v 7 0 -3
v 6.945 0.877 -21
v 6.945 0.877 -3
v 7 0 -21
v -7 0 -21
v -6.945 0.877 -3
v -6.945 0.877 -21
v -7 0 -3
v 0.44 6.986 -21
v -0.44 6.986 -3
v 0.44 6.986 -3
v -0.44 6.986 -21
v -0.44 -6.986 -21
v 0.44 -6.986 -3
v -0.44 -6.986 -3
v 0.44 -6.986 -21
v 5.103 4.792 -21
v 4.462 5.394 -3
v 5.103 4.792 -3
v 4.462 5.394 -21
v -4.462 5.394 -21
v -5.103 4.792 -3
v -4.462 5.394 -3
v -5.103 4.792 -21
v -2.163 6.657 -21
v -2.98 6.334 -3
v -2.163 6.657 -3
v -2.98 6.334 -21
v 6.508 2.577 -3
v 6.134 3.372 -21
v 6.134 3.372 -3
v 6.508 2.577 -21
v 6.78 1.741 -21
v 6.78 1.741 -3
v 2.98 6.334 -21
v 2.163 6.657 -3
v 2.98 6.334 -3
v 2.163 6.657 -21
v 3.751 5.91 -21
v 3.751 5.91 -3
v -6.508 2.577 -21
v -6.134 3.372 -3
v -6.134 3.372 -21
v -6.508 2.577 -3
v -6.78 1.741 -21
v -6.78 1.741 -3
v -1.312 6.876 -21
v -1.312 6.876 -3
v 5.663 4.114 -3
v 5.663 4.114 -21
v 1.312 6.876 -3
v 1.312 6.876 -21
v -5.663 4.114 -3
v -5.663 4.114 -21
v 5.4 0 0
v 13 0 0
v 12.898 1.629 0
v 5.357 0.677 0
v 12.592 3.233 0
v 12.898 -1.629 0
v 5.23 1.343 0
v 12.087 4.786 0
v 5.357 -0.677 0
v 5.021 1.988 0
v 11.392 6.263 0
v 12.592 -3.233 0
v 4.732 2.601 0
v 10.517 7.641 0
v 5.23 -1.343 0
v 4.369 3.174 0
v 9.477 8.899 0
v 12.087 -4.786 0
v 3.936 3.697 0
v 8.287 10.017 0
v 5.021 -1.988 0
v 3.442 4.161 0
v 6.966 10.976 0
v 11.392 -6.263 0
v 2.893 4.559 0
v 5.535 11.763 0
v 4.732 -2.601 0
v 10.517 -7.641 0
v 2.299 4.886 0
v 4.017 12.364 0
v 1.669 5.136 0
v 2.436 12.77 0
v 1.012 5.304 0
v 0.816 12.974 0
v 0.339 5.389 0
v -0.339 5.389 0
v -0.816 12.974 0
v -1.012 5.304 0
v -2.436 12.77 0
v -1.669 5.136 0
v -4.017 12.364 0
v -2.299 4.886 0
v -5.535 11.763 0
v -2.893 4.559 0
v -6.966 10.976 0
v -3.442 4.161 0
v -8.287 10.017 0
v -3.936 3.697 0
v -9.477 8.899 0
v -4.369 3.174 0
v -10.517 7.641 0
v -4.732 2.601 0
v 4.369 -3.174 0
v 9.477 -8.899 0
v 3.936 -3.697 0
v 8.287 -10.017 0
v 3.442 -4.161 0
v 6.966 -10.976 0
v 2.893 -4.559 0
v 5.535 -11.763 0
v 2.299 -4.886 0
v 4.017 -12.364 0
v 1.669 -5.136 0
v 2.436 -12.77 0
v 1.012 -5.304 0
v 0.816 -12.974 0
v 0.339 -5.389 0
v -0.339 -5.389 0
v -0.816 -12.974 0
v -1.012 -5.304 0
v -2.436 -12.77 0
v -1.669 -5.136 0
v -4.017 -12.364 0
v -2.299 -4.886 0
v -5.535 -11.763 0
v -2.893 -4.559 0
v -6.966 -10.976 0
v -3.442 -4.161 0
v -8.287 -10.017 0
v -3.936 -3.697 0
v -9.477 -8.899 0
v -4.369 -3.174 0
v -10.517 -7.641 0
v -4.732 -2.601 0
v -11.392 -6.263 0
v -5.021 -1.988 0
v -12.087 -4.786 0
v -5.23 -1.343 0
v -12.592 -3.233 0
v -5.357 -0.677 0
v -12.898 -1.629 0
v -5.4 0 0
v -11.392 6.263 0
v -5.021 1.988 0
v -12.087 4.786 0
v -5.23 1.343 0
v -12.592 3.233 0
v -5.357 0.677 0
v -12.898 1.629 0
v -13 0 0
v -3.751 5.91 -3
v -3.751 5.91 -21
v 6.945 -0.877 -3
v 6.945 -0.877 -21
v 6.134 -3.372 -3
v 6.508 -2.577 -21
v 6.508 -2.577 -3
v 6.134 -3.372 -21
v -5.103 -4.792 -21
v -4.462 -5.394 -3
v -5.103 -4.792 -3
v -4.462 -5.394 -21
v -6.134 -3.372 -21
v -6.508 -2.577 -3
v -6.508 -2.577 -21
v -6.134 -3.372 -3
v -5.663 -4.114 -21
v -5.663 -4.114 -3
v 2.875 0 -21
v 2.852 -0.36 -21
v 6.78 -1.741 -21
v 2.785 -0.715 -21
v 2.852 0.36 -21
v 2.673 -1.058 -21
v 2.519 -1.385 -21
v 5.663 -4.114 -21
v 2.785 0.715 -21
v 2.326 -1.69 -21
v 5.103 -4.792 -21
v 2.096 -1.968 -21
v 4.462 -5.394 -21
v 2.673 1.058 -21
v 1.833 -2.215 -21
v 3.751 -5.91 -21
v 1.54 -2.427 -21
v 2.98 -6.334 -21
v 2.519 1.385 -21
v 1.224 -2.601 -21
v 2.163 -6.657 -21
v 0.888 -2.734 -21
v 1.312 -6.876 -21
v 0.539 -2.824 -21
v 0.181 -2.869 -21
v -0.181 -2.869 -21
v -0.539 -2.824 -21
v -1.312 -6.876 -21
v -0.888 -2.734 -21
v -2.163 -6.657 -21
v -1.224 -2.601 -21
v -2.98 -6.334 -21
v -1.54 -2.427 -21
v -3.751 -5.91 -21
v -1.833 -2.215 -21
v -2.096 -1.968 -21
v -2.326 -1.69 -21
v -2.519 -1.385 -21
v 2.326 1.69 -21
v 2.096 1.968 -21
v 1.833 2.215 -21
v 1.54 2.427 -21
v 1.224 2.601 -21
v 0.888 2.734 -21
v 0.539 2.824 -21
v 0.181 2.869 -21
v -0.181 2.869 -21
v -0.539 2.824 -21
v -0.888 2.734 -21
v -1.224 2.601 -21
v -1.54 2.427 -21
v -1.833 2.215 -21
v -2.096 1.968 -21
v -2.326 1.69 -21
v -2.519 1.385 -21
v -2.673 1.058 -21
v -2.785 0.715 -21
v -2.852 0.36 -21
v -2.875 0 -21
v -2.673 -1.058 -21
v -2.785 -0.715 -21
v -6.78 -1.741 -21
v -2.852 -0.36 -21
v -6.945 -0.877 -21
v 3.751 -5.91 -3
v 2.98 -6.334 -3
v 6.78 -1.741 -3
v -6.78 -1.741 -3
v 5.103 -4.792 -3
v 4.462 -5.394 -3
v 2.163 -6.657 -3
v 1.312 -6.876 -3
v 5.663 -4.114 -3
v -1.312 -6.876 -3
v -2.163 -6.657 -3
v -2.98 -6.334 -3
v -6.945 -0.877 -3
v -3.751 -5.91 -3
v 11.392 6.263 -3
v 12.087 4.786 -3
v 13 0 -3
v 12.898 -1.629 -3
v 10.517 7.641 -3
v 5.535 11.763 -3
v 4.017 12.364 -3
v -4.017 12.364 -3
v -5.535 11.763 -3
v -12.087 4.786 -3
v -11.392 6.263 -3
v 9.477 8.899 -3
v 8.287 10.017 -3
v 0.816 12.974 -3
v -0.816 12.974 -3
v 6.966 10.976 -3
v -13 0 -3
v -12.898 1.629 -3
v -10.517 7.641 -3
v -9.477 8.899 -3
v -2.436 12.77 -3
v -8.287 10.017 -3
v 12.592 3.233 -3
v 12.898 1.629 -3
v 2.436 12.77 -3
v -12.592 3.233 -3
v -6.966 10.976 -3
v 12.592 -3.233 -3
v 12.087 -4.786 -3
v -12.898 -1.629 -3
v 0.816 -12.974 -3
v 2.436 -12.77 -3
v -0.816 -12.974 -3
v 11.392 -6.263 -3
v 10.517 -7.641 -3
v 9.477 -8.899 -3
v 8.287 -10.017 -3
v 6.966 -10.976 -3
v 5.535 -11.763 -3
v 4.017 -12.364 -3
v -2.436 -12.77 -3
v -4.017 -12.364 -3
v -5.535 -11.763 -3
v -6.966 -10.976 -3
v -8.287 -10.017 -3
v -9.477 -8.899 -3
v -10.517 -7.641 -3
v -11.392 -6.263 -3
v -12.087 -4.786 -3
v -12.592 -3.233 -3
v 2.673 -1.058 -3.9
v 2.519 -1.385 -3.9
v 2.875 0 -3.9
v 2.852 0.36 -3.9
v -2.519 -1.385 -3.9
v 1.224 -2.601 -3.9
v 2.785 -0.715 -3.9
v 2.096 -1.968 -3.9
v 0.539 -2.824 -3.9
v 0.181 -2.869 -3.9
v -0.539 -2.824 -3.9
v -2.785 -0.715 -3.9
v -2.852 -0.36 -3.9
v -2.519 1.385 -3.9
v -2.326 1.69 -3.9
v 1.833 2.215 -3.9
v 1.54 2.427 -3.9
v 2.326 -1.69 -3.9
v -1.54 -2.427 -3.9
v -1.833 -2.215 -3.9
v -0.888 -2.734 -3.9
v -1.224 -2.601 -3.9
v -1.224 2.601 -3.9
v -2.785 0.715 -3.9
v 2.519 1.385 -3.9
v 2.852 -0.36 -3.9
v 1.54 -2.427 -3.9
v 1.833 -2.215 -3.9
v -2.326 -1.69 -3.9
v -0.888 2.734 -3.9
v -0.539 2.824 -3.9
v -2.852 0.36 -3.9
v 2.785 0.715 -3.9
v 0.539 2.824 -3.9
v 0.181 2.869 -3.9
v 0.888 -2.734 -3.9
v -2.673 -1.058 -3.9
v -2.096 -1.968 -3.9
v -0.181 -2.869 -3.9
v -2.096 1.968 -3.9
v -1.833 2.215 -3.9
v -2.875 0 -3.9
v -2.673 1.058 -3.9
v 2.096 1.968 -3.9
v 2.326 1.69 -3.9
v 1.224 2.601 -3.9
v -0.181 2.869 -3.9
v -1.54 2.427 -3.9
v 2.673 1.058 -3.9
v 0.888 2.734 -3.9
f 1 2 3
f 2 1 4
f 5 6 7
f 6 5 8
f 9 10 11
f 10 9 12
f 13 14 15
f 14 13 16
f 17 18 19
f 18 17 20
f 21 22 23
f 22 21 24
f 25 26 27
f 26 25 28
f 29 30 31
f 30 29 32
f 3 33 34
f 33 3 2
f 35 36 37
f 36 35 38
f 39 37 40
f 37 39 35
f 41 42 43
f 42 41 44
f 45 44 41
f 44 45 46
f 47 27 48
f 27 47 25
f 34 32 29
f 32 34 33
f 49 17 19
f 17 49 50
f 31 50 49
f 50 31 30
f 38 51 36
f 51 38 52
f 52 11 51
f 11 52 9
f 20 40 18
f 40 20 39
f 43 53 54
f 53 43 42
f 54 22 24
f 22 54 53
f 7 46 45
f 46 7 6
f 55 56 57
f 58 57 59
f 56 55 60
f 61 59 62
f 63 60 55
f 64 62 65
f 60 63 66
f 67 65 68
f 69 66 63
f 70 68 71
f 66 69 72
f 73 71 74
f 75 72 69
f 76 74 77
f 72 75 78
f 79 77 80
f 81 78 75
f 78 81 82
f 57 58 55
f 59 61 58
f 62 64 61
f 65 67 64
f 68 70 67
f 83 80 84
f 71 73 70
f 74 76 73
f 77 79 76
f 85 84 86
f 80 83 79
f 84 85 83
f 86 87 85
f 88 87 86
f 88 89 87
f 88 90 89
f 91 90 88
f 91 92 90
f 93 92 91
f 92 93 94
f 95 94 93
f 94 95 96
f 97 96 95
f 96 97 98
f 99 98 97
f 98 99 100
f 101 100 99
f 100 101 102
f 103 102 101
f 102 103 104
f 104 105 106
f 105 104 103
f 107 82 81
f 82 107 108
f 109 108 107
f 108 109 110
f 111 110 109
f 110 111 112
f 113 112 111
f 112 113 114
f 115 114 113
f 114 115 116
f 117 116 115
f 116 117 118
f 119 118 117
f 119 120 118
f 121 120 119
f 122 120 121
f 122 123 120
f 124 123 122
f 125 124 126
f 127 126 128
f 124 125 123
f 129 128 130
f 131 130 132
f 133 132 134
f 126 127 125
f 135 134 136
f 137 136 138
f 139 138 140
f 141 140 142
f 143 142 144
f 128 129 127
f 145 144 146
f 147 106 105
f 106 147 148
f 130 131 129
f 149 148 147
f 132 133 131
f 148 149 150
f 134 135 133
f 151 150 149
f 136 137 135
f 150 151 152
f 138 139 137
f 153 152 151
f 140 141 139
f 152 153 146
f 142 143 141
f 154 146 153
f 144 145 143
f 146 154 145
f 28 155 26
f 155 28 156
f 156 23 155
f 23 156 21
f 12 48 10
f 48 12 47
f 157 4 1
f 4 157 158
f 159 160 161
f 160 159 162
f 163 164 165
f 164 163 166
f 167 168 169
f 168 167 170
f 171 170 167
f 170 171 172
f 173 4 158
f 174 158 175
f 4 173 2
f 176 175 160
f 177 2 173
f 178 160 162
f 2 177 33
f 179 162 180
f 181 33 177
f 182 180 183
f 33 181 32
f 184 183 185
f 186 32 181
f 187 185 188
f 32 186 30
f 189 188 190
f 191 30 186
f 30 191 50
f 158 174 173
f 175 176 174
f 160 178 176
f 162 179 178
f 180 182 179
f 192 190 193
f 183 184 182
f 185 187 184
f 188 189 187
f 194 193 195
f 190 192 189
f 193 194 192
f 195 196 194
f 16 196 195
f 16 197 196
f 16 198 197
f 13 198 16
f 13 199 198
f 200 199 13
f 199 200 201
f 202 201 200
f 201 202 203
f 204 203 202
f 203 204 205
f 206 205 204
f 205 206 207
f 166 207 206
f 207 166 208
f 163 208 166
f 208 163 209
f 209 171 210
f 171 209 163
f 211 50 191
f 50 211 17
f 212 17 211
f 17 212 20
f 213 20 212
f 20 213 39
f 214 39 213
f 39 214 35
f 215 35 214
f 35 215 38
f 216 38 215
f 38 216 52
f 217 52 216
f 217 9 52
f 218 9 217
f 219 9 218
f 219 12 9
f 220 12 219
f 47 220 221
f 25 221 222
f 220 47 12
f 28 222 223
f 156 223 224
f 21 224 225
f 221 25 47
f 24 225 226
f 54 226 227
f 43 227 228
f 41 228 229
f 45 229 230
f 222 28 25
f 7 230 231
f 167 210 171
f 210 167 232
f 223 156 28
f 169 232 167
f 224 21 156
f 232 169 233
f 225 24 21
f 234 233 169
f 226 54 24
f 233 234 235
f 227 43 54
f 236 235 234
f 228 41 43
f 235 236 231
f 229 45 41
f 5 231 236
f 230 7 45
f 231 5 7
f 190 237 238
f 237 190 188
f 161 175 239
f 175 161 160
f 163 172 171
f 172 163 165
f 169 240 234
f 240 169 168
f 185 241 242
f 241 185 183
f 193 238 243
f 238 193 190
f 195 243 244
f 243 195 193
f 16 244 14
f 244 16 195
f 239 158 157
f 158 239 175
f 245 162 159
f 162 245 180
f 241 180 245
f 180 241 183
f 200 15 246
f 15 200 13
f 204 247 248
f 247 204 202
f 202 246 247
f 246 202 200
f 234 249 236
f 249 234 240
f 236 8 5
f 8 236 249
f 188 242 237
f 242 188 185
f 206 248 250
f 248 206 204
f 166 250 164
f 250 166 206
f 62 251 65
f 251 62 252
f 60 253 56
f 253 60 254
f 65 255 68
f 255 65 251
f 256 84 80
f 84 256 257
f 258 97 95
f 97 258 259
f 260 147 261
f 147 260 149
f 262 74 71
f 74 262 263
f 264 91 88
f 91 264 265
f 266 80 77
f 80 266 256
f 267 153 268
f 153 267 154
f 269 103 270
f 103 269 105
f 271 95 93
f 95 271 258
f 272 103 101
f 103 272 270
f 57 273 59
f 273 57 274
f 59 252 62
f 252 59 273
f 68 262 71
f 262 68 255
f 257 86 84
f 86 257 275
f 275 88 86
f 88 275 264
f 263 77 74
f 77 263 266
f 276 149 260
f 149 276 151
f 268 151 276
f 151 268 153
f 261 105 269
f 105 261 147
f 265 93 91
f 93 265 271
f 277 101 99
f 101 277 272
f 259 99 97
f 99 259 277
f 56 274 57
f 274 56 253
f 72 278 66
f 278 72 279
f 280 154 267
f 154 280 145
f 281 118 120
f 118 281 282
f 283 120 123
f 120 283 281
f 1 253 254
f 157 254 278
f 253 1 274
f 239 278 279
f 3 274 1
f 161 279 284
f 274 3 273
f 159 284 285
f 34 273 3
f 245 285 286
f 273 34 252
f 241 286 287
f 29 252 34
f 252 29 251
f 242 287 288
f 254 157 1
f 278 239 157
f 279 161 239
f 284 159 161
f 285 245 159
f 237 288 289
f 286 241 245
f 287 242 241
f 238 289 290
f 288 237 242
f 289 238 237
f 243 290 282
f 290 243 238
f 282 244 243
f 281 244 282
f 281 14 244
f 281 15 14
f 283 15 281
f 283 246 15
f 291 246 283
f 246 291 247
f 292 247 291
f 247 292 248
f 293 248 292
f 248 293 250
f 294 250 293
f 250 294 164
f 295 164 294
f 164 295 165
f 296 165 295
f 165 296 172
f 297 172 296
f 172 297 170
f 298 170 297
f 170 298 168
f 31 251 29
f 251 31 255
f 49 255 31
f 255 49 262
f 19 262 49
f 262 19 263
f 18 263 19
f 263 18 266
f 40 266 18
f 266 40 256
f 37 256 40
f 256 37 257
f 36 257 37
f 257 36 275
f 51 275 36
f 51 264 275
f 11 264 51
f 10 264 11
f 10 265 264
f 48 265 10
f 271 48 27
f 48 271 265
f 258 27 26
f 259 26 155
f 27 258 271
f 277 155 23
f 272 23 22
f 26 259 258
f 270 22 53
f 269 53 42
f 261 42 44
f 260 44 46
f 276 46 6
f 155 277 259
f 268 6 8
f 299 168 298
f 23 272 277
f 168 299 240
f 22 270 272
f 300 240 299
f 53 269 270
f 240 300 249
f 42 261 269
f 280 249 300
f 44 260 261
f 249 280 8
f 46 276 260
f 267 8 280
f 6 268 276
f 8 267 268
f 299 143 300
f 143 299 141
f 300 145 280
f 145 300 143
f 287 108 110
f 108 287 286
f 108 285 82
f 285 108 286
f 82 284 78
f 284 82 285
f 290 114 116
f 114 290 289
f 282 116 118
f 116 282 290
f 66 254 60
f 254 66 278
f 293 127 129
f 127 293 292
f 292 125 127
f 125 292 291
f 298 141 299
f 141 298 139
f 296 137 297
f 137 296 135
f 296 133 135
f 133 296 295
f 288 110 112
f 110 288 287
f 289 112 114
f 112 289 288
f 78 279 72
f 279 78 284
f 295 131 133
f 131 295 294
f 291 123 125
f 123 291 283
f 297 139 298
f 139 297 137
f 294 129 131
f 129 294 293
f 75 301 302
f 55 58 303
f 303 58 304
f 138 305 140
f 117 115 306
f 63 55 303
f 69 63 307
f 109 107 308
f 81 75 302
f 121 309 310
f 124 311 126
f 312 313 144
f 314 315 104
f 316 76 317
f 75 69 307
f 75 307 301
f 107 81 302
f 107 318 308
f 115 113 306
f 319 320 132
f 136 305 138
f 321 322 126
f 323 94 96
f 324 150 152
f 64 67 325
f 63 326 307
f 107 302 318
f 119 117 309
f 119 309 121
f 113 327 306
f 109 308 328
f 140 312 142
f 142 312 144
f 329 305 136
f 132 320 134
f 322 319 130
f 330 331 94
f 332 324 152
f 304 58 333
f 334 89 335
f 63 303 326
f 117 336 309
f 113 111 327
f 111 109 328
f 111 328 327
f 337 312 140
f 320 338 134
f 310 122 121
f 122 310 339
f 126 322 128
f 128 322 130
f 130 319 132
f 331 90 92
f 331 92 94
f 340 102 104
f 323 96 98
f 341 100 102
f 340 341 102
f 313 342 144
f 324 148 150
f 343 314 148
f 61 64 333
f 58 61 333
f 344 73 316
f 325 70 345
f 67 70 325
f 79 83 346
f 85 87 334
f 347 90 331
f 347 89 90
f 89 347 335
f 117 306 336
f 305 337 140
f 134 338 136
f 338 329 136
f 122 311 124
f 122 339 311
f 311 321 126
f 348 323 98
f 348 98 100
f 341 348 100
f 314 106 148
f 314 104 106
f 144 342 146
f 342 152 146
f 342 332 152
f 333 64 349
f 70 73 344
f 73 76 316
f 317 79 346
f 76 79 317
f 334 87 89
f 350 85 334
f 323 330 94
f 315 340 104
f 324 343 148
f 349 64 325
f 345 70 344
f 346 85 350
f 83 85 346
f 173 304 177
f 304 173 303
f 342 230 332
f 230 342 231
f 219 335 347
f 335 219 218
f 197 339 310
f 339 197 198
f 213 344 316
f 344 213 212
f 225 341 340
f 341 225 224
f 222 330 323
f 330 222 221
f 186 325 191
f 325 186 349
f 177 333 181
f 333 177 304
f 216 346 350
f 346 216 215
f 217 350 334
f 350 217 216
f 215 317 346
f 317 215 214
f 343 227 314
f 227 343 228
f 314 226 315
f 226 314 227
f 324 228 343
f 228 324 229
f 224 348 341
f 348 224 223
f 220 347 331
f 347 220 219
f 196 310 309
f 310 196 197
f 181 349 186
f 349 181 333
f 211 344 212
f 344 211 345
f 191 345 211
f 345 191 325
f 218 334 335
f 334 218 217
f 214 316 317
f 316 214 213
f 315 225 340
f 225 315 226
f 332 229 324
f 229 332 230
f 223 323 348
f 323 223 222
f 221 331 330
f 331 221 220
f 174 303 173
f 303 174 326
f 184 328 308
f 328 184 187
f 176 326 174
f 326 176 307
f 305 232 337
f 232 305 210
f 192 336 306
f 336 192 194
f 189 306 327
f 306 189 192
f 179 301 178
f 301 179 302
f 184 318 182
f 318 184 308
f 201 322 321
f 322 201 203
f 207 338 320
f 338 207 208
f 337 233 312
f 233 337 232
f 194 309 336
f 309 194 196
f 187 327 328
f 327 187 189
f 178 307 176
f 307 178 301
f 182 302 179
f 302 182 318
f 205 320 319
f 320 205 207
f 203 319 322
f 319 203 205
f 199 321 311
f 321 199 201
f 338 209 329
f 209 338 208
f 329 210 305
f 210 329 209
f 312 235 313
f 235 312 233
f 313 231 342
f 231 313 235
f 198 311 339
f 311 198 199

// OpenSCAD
$fn = 50;


difference() {
	union() {
		translate(v = [0, 0, -21.0000000000]) {
			cylinder(h = 21, r = 7.0000000000);
		}
		translate(v = [0, 0, -3.0000000000]) {
			cylinder(h = 3, r = 13.0000000000);
		}
	}
	union() {
		translate(v = [0, 0, 0]) {
			rotate(a = [0, 0, 0]) {
				difference() {
					union() {
						#translate(v = [0, 0, -21.0000000000]) {
							cylinder(h = 21, r = 2.6000000000);
						}
						#translate(v = [0, 0, -3.9000000000]) {
							cylinder(h = 3.9000000000, r = 7.0000000000, r1 = 2.8750000000, r2 = 5.4000000000);
						}
						#translate(v = [0, 0, -21.0000000000]) {
							cylinder(h = 21, r = 2.8750000000);
						}
						#translate(v = [0, 0, -21.0000000000]) {
							cylinder(h = 21, r = 2.6000000000);
						}
					}
					union();
				}
			}
		}
	}
}
